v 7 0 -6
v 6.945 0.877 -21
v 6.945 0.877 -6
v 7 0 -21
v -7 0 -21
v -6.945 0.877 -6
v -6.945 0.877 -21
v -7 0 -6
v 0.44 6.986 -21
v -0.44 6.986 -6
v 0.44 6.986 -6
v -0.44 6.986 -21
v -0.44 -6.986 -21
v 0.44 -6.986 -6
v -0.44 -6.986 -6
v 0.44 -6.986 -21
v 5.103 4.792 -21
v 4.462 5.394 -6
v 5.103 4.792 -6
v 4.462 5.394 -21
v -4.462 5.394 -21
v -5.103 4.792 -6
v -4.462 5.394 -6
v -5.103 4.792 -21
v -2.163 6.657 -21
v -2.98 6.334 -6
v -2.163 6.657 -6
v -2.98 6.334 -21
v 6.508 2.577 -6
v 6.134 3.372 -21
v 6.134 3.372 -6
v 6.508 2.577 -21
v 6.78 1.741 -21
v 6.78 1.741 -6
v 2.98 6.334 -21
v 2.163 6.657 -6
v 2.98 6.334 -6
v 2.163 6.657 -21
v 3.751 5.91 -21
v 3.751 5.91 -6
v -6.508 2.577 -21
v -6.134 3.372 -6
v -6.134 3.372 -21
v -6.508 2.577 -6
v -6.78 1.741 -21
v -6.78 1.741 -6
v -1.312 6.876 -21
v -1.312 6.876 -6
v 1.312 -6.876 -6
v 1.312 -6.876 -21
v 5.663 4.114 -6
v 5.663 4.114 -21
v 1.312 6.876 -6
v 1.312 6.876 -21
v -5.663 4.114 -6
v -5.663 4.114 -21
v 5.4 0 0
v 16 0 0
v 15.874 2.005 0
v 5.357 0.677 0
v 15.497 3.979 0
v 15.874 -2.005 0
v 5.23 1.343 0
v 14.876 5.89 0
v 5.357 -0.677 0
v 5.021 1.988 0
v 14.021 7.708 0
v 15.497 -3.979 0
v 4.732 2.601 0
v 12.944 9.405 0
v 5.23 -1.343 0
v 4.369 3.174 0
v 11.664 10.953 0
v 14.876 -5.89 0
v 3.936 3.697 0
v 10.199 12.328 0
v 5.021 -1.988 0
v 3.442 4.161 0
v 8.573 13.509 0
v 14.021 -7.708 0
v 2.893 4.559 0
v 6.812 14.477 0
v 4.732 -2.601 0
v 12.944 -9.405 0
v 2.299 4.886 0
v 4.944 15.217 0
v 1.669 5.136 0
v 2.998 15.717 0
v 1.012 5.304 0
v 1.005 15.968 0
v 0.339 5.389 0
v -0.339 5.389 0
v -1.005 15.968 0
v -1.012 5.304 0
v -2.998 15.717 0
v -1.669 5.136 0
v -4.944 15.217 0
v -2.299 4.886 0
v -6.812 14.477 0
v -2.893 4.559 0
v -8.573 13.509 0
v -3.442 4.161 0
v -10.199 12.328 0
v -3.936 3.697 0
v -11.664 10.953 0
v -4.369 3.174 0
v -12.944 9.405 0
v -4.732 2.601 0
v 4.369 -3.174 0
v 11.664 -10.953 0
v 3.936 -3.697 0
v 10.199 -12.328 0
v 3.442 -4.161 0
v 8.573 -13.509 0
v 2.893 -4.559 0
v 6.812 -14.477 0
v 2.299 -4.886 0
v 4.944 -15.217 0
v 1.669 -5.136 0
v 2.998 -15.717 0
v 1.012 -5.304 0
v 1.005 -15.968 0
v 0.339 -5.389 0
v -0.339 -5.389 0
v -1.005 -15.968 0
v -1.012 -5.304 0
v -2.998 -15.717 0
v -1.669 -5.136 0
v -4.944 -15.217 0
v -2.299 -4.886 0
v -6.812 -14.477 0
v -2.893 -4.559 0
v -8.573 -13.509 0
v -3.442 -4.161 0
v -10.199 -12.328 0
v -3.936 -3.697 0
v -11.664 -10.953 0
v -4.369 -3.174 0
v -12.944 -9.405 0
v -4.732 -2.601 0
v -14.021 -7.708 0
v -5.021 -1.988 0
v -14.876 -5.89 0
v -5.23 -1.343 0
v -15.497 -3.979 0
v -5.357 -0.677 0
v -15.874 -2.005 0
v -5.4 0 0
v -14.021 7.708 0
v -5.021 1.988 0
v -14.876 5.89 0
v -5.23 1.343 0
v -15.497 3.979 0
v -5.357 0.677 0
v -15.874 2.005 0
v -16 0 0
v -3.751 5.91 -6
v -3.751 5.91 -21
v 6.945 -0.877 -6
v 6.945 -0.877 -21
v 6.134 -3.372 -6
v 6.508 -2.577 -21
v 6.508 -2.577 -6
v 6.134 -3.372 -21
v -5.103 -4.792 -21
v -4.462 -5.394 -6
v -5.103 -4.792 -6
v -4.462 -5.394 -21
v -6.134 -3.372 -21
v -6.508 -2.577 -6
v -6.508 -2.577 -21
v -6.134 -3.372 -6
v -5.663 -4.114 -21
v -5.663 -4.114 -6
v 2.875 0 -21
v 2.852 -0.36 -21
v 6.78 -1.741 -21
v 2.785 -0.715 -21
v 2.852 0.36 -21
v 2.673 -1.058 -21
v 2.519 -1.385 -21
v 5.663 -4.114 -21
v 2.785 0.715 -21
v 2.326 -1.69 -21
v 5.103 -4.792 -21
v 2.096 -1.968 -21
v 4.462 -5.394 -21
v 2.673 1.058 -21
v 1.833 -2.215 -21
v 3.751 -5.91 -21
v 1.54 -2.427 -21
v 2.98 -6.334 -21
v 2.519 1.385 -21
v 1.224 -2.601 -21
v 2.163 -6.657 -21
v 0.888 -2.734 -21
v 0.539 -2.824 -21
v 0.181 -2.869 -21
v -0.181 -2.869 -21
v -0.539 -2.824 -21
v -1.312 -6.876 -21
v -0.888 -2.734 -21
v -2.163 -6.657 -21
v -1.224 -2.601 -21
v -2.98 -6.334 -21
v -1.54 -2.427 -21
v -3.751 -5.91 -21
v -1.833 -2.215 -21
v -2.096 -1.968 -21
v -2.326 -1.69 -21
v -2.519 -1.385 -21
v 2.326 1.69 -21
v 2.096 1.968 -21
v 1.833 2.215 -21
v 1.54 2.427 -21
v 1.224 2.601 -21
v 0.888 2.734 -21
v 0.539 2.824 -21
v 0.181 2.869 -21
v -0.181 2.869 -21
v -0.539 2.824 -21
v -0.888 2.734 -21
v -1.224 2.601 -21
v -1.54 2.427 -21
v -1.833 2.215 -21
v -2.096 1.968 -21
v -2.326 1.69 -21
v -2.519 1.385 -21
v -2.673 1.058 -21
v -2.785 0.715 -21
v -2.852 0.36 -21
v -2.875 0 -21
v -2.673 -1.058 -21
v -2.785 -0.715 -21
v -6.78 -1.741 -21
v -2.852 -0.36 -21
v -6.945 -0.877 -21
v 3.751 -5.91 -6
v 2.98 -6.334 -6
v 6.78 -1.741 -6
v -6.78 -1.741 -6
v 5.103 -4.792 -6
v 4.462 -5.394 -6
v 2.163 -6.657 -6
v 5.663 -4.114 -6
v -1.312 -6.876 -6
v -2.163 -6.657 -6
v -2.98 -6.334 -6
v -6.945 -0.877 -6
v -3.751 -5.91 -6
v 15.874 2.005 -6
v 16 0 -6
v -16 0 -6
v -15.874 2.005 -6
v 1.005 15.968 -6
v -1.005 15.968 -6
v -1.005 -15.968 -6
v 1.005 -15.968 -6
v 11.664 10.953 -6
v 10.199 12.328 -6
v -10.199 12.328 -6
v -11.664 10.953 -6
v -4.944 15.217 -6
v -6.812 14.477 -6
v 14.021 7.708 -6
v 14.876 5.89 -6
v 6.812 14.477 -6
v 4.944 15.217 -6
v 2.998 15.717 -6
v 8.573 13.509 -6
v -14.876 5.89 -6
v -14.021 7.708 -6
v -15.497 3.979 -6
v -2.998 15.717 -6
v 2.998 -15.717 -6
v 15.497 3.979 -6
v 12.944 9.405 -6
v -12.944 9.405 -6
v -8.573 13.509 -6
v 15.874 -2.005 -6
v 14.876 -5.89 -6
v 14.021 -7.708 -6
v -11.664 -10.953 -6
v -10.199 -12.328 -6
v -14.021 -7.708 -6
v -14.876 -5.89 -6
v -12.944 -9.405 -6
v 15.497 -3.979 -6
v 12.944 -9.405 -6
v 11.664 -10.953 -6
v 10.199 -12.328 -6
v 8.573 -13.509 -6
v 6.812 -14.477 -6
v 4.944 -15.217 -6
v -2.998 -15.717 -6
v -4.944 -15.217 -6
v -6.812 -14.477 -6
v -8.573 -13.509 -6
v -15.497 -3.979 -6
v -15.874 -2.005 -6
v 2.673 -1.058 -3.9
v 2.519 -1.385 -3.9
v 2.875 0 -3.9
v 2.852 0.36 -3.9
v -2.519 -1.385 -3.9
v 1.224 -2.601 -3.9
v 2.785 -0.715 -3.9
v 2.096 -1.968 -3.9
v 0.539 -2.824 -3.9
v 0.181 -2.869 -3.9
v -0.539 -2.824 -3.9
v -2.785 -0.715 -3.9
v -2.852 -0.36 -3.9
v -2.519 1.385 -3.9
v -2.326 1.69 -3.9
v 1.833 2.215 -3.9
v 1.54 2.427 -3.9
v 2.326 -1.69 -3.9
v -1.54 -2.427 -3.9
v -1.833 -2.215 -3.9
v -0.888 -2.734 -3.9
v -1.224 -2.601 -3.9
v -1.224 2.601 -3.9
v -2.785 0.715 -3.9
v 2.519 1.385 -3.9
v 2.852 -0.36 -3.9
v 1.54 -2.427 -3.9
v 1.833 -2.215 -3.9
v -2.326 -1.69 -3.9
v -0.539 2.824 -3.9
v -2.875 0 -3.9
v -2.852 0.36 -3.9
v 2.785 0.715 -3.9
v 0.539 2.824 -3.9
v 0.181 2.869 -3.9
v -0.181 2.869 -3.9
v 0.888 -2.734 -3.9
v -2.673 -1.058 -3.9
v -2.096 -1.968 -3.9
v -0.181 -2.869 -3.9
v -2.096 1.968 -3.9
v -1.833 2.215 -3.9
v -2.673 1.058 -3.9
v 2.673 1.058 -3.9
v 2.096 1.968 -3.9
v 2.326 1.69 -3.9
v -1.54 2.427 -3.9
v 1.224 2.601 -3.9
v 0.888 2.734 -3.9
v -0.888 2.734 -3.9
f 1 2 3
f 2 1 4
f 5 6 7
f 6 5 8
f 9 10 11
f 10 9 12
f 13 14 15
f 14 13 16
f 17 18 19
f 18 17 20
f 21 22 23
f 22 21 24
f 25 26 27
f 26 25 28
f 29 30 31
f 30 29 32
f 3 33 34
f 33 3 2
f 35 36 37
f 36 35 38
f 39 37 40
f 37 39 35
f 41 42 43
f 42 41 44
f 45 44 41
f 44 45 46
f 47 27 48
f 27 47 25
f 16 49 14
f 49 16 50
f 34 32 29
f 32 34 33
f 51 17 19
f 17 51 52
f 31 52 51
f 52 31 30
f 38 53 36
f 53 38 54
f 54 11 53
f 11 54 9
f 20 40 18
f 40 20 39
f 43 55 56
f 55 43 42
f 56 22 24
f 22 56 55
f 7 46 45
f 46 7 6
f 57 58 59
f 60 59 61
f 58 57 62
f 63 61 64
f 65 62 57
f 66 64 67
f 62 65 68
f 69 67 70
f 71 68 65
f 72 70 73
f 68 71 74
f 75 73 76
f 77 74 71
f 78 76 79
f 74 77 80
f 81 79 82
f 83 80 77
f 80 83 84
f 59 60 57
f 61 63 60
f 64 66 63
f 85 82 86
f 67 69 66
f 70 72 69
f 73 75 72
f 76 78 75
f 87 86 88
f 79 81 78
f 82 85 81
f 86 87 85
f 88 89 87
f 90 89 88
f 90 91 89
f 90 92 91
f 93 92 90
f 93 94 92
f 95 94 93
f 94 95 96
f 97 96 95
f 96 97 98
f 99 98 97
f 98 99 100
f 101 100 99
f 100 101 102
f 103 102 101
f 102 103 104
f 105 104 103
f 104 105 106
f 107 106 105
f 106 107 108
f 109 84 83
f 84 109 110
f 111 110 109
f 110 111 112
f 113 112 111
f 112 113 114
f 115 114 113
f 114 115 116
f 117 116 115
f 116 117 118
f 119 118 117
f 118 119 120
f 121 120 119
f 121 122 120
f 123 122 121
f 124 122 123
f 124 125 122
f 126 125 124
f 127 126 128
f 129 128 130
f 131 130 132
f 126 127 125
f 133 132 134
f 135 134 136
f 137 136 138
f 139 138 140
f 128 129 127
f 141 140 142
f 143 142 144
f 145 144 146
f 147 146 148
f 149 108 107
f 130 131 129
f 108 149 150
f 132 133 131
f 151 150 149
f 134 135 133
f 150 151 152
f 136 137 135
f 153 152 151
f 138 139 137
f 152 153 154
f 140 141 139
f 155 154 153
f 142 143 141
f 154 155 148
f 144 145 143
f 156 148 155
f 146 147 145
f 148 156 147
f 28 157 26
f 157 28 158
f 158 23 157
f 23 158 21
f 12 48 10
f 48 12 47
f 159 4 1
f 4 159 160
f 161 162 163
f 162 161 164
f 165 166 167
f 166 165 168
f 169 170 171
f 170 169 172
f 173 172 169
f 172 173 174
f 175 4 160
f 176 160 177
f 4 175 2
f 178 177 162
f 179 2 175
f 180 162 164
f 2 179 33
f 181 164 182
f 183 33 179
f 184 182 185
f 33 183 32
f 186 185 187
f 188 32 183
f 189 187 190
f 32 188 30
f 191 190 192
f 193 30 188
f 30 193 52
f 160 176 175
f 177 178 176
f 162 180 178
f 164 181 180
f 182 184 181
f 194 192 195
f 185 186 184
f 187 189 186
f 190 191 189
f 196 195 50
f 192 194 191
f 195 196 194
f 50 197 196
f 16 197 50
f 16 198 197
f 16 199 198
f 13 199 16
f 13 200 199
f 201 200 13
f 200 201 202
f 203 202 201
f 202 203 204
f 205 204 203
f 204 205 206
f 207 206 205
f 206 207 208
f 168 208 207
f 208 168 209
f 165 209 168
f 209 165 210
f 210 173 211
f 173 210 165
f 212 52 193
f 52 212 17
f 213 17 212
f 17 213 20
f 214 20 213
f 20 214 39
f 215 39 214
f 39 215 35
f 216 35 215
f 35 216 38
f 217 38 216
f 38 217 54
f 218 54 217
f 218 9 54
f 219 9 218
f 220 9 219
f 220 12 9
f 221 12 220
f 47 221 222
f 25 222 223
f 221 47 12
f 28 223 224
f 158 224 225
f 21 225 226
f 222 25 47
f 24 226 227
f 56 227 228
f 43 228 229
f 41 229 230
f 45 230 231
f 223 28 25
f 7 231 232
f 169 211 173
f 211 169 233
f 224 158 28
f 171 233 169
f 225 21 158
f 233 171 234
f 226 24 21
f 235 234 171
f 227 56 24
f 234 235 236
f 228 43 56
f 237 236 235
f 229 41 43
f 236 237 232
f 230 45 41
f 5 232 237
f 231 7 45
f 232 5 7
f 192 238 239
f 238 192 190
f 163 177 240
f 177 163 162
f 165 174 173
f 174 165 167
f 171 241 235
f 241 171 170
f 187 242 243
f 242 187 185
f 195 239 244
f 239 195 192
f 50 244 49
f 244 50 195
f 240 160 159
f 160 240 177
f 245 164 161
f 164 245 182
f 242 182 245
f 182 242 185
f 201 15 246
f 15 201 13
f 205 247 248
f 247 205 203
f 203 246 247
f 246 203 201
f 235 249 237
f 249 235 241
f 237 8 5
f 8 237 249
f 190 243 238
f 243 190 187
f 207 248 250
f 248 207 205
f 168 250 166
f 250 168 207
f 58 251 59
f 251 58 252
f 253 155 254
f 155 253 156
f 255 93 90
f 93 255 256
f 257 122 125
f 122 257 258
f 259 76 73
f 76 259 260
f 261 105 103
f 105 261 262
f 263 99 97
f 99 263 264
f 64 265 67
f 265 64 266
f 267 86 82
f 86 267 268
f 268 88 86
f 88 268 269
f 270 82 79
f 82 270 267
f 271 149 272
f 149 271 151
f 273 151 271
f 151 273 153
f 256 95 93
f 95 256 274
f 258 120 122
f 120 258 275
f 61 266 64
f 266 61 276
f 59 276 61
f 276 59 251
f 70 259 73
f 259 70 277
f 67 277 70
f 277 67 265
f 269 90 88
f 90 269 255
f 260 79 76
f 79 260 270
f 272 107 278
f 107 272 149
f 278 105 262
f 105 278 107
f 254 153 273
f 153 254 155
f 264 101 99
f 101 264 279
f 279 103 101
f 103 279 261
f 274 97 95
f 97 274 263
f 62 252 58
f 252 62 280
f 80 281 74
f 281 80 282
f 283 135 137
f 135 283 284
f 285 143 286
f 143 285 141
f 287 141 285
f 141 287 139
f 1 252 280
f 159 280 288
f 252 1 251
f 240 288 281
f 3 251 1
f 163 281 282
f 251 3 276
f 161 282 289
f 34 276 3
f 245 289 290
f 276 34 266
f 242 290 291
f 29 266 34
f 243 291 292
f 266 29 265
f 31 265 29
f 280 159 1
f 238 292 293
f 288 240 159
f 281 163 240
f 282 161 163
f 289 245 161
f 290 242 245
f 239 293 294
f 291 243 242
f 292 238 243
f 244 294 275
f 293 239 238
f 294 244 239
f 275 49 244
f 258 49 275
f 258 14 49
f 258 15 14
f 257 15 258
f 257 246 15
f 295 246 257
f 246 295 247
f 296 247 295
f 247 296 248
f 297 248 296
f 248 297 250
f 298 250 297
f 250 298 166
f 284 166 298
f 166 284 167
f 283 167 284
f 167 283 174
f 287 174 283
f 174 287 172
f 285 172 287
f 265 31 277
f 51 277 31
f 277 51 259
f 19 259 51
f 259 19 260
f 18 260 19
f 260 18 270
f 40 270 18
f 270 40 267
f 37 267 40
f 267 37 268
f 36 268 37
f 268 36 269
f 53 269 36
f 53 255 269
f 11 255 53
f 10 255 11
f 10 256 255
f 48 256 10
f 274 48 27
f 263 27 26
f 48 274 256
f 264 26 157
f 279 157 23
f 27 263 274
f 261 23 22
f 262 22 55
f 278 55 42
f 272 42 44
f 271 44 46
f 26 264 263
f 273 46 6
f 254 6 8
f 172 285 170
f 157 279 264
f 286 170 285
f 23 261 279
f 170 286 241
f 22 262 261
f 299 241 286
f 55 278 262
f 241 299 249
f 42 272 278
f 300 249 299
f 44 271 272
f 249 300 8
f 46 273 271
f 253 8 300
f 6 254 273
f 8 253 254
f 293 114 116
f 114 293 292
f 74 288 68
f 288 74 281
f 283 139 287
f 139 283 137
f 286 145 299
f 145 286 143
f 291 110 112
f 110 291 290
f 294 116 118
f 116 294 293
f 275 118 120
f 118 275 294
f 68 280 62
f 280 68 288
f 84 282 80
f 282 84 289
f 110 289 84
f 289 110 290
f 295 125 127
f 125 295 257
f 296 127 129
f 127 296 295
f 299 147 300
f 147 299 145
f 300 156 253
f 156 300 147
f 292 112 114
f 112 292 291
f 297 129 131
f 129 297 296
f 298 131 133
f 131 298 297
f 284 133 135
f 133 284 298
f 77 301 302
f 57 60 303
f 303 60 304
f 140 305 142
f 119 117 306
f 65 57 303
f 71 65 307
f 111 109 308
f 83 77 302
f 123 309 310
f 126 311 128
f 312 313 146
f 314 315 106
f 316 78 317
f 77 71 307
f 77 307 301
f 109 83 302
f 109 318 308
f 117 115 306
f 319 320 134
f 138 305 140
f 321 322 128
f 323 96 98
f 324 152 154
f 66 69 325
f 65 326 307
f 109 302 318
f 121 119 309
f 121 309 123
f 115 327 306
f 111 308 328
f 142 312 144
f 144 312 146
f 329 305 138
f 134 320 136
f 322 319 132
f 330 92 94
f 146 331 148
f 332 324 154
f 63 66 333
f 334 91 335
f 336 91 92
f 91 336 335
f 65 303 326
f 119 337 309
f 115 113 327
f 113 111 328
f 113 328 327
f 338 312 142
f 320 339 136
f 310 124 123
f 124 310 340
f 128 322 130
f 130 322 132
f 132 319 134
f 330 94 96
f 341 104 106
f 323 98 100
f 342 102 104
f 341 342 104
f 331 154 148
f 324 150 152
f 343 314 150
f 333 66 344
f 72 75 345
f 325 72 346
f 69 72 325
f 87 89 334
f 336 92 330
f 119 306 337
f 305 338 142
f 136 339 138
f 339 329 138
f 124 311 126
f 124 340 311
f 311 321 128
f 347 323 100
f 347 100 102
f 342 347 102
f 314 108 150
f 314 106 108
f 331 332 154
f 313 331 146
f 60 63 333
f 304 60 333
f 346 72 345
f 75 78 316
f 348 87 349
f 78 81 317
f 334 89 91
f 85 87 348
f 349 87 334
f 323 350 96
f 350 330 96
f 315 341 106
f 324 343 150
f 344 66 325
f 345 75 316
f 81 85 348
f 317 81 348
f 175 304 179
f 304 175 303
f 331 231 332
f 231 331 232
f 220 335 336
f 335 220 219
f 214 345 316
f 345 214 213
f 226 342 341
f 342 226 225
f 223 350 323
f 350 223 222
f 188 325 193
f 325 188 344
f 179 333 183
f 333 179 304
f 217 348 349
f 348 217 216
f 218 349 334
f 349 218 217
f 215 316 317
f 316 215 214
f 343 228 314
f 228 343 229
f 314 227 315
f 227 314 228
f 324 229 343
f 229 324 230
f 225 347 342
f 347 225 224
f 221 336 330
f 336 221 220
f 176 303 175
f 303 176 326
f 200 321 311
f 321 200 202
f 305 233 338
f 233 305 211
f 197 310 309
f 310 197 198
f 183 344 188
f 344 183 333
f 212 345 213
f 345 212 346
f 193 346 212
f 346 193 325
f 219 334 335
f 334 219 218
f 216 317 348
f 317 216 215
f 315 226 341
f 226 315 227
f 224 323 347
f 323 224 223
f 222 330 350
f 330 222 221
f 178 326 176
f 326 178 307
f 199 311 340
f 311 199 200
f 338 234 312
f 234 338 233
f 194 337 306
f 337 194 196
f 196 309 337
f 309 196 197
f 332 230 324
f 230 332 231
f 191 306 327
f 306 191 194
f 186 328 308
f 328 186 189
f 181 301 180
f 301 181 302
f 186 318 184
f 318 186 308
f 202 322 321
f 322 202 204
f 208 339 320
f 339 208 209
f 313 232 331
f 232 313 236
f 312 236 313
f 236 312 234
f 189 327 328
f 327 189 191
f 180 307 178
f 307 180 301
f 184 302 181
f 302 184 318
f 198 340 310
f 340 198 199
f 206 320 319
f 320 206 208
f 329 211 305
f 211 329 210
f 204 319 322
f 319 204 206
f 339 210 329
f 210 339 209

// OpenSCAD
$fn = 50;


difference() {
	union() {
		translate(v = [0, 0, -21.0000000000]) {
			cylinder(h = 21, r = 7.0000000000);
		}
		translate(v = [0, 0, -6.0000000000]) {
			cylinder(h = 6, r = 16.0000000000);
		}
	}
	union() {
		translate(v = [0, 0, 0]) {
			rotate(a = [0, 0, 0]) {
				difference() {
					union() {
						#translate(v = [0, 0, -21.0000000000]) {
							cylinder(h = 21, r = 2.6000000000);
						}
						#translate(v = [0, 0, -3.9000000000]) {
							cylinder(h = 3.9000000000, r = 7.0000000000, r1 = 2.8750000000, r2 = 5.4000000000);
						}
						#translate(v = [0, 0, -21.0000000000]) {
							cylinder(h = 21, r = 2.8750000000);
						}
						#translate(v = [0, 0, -21.0000000000]) {
							cylinder(h = 21, r = 2.6000000000);
						}
					}
					union();
				}
			}
		}
	}
}
